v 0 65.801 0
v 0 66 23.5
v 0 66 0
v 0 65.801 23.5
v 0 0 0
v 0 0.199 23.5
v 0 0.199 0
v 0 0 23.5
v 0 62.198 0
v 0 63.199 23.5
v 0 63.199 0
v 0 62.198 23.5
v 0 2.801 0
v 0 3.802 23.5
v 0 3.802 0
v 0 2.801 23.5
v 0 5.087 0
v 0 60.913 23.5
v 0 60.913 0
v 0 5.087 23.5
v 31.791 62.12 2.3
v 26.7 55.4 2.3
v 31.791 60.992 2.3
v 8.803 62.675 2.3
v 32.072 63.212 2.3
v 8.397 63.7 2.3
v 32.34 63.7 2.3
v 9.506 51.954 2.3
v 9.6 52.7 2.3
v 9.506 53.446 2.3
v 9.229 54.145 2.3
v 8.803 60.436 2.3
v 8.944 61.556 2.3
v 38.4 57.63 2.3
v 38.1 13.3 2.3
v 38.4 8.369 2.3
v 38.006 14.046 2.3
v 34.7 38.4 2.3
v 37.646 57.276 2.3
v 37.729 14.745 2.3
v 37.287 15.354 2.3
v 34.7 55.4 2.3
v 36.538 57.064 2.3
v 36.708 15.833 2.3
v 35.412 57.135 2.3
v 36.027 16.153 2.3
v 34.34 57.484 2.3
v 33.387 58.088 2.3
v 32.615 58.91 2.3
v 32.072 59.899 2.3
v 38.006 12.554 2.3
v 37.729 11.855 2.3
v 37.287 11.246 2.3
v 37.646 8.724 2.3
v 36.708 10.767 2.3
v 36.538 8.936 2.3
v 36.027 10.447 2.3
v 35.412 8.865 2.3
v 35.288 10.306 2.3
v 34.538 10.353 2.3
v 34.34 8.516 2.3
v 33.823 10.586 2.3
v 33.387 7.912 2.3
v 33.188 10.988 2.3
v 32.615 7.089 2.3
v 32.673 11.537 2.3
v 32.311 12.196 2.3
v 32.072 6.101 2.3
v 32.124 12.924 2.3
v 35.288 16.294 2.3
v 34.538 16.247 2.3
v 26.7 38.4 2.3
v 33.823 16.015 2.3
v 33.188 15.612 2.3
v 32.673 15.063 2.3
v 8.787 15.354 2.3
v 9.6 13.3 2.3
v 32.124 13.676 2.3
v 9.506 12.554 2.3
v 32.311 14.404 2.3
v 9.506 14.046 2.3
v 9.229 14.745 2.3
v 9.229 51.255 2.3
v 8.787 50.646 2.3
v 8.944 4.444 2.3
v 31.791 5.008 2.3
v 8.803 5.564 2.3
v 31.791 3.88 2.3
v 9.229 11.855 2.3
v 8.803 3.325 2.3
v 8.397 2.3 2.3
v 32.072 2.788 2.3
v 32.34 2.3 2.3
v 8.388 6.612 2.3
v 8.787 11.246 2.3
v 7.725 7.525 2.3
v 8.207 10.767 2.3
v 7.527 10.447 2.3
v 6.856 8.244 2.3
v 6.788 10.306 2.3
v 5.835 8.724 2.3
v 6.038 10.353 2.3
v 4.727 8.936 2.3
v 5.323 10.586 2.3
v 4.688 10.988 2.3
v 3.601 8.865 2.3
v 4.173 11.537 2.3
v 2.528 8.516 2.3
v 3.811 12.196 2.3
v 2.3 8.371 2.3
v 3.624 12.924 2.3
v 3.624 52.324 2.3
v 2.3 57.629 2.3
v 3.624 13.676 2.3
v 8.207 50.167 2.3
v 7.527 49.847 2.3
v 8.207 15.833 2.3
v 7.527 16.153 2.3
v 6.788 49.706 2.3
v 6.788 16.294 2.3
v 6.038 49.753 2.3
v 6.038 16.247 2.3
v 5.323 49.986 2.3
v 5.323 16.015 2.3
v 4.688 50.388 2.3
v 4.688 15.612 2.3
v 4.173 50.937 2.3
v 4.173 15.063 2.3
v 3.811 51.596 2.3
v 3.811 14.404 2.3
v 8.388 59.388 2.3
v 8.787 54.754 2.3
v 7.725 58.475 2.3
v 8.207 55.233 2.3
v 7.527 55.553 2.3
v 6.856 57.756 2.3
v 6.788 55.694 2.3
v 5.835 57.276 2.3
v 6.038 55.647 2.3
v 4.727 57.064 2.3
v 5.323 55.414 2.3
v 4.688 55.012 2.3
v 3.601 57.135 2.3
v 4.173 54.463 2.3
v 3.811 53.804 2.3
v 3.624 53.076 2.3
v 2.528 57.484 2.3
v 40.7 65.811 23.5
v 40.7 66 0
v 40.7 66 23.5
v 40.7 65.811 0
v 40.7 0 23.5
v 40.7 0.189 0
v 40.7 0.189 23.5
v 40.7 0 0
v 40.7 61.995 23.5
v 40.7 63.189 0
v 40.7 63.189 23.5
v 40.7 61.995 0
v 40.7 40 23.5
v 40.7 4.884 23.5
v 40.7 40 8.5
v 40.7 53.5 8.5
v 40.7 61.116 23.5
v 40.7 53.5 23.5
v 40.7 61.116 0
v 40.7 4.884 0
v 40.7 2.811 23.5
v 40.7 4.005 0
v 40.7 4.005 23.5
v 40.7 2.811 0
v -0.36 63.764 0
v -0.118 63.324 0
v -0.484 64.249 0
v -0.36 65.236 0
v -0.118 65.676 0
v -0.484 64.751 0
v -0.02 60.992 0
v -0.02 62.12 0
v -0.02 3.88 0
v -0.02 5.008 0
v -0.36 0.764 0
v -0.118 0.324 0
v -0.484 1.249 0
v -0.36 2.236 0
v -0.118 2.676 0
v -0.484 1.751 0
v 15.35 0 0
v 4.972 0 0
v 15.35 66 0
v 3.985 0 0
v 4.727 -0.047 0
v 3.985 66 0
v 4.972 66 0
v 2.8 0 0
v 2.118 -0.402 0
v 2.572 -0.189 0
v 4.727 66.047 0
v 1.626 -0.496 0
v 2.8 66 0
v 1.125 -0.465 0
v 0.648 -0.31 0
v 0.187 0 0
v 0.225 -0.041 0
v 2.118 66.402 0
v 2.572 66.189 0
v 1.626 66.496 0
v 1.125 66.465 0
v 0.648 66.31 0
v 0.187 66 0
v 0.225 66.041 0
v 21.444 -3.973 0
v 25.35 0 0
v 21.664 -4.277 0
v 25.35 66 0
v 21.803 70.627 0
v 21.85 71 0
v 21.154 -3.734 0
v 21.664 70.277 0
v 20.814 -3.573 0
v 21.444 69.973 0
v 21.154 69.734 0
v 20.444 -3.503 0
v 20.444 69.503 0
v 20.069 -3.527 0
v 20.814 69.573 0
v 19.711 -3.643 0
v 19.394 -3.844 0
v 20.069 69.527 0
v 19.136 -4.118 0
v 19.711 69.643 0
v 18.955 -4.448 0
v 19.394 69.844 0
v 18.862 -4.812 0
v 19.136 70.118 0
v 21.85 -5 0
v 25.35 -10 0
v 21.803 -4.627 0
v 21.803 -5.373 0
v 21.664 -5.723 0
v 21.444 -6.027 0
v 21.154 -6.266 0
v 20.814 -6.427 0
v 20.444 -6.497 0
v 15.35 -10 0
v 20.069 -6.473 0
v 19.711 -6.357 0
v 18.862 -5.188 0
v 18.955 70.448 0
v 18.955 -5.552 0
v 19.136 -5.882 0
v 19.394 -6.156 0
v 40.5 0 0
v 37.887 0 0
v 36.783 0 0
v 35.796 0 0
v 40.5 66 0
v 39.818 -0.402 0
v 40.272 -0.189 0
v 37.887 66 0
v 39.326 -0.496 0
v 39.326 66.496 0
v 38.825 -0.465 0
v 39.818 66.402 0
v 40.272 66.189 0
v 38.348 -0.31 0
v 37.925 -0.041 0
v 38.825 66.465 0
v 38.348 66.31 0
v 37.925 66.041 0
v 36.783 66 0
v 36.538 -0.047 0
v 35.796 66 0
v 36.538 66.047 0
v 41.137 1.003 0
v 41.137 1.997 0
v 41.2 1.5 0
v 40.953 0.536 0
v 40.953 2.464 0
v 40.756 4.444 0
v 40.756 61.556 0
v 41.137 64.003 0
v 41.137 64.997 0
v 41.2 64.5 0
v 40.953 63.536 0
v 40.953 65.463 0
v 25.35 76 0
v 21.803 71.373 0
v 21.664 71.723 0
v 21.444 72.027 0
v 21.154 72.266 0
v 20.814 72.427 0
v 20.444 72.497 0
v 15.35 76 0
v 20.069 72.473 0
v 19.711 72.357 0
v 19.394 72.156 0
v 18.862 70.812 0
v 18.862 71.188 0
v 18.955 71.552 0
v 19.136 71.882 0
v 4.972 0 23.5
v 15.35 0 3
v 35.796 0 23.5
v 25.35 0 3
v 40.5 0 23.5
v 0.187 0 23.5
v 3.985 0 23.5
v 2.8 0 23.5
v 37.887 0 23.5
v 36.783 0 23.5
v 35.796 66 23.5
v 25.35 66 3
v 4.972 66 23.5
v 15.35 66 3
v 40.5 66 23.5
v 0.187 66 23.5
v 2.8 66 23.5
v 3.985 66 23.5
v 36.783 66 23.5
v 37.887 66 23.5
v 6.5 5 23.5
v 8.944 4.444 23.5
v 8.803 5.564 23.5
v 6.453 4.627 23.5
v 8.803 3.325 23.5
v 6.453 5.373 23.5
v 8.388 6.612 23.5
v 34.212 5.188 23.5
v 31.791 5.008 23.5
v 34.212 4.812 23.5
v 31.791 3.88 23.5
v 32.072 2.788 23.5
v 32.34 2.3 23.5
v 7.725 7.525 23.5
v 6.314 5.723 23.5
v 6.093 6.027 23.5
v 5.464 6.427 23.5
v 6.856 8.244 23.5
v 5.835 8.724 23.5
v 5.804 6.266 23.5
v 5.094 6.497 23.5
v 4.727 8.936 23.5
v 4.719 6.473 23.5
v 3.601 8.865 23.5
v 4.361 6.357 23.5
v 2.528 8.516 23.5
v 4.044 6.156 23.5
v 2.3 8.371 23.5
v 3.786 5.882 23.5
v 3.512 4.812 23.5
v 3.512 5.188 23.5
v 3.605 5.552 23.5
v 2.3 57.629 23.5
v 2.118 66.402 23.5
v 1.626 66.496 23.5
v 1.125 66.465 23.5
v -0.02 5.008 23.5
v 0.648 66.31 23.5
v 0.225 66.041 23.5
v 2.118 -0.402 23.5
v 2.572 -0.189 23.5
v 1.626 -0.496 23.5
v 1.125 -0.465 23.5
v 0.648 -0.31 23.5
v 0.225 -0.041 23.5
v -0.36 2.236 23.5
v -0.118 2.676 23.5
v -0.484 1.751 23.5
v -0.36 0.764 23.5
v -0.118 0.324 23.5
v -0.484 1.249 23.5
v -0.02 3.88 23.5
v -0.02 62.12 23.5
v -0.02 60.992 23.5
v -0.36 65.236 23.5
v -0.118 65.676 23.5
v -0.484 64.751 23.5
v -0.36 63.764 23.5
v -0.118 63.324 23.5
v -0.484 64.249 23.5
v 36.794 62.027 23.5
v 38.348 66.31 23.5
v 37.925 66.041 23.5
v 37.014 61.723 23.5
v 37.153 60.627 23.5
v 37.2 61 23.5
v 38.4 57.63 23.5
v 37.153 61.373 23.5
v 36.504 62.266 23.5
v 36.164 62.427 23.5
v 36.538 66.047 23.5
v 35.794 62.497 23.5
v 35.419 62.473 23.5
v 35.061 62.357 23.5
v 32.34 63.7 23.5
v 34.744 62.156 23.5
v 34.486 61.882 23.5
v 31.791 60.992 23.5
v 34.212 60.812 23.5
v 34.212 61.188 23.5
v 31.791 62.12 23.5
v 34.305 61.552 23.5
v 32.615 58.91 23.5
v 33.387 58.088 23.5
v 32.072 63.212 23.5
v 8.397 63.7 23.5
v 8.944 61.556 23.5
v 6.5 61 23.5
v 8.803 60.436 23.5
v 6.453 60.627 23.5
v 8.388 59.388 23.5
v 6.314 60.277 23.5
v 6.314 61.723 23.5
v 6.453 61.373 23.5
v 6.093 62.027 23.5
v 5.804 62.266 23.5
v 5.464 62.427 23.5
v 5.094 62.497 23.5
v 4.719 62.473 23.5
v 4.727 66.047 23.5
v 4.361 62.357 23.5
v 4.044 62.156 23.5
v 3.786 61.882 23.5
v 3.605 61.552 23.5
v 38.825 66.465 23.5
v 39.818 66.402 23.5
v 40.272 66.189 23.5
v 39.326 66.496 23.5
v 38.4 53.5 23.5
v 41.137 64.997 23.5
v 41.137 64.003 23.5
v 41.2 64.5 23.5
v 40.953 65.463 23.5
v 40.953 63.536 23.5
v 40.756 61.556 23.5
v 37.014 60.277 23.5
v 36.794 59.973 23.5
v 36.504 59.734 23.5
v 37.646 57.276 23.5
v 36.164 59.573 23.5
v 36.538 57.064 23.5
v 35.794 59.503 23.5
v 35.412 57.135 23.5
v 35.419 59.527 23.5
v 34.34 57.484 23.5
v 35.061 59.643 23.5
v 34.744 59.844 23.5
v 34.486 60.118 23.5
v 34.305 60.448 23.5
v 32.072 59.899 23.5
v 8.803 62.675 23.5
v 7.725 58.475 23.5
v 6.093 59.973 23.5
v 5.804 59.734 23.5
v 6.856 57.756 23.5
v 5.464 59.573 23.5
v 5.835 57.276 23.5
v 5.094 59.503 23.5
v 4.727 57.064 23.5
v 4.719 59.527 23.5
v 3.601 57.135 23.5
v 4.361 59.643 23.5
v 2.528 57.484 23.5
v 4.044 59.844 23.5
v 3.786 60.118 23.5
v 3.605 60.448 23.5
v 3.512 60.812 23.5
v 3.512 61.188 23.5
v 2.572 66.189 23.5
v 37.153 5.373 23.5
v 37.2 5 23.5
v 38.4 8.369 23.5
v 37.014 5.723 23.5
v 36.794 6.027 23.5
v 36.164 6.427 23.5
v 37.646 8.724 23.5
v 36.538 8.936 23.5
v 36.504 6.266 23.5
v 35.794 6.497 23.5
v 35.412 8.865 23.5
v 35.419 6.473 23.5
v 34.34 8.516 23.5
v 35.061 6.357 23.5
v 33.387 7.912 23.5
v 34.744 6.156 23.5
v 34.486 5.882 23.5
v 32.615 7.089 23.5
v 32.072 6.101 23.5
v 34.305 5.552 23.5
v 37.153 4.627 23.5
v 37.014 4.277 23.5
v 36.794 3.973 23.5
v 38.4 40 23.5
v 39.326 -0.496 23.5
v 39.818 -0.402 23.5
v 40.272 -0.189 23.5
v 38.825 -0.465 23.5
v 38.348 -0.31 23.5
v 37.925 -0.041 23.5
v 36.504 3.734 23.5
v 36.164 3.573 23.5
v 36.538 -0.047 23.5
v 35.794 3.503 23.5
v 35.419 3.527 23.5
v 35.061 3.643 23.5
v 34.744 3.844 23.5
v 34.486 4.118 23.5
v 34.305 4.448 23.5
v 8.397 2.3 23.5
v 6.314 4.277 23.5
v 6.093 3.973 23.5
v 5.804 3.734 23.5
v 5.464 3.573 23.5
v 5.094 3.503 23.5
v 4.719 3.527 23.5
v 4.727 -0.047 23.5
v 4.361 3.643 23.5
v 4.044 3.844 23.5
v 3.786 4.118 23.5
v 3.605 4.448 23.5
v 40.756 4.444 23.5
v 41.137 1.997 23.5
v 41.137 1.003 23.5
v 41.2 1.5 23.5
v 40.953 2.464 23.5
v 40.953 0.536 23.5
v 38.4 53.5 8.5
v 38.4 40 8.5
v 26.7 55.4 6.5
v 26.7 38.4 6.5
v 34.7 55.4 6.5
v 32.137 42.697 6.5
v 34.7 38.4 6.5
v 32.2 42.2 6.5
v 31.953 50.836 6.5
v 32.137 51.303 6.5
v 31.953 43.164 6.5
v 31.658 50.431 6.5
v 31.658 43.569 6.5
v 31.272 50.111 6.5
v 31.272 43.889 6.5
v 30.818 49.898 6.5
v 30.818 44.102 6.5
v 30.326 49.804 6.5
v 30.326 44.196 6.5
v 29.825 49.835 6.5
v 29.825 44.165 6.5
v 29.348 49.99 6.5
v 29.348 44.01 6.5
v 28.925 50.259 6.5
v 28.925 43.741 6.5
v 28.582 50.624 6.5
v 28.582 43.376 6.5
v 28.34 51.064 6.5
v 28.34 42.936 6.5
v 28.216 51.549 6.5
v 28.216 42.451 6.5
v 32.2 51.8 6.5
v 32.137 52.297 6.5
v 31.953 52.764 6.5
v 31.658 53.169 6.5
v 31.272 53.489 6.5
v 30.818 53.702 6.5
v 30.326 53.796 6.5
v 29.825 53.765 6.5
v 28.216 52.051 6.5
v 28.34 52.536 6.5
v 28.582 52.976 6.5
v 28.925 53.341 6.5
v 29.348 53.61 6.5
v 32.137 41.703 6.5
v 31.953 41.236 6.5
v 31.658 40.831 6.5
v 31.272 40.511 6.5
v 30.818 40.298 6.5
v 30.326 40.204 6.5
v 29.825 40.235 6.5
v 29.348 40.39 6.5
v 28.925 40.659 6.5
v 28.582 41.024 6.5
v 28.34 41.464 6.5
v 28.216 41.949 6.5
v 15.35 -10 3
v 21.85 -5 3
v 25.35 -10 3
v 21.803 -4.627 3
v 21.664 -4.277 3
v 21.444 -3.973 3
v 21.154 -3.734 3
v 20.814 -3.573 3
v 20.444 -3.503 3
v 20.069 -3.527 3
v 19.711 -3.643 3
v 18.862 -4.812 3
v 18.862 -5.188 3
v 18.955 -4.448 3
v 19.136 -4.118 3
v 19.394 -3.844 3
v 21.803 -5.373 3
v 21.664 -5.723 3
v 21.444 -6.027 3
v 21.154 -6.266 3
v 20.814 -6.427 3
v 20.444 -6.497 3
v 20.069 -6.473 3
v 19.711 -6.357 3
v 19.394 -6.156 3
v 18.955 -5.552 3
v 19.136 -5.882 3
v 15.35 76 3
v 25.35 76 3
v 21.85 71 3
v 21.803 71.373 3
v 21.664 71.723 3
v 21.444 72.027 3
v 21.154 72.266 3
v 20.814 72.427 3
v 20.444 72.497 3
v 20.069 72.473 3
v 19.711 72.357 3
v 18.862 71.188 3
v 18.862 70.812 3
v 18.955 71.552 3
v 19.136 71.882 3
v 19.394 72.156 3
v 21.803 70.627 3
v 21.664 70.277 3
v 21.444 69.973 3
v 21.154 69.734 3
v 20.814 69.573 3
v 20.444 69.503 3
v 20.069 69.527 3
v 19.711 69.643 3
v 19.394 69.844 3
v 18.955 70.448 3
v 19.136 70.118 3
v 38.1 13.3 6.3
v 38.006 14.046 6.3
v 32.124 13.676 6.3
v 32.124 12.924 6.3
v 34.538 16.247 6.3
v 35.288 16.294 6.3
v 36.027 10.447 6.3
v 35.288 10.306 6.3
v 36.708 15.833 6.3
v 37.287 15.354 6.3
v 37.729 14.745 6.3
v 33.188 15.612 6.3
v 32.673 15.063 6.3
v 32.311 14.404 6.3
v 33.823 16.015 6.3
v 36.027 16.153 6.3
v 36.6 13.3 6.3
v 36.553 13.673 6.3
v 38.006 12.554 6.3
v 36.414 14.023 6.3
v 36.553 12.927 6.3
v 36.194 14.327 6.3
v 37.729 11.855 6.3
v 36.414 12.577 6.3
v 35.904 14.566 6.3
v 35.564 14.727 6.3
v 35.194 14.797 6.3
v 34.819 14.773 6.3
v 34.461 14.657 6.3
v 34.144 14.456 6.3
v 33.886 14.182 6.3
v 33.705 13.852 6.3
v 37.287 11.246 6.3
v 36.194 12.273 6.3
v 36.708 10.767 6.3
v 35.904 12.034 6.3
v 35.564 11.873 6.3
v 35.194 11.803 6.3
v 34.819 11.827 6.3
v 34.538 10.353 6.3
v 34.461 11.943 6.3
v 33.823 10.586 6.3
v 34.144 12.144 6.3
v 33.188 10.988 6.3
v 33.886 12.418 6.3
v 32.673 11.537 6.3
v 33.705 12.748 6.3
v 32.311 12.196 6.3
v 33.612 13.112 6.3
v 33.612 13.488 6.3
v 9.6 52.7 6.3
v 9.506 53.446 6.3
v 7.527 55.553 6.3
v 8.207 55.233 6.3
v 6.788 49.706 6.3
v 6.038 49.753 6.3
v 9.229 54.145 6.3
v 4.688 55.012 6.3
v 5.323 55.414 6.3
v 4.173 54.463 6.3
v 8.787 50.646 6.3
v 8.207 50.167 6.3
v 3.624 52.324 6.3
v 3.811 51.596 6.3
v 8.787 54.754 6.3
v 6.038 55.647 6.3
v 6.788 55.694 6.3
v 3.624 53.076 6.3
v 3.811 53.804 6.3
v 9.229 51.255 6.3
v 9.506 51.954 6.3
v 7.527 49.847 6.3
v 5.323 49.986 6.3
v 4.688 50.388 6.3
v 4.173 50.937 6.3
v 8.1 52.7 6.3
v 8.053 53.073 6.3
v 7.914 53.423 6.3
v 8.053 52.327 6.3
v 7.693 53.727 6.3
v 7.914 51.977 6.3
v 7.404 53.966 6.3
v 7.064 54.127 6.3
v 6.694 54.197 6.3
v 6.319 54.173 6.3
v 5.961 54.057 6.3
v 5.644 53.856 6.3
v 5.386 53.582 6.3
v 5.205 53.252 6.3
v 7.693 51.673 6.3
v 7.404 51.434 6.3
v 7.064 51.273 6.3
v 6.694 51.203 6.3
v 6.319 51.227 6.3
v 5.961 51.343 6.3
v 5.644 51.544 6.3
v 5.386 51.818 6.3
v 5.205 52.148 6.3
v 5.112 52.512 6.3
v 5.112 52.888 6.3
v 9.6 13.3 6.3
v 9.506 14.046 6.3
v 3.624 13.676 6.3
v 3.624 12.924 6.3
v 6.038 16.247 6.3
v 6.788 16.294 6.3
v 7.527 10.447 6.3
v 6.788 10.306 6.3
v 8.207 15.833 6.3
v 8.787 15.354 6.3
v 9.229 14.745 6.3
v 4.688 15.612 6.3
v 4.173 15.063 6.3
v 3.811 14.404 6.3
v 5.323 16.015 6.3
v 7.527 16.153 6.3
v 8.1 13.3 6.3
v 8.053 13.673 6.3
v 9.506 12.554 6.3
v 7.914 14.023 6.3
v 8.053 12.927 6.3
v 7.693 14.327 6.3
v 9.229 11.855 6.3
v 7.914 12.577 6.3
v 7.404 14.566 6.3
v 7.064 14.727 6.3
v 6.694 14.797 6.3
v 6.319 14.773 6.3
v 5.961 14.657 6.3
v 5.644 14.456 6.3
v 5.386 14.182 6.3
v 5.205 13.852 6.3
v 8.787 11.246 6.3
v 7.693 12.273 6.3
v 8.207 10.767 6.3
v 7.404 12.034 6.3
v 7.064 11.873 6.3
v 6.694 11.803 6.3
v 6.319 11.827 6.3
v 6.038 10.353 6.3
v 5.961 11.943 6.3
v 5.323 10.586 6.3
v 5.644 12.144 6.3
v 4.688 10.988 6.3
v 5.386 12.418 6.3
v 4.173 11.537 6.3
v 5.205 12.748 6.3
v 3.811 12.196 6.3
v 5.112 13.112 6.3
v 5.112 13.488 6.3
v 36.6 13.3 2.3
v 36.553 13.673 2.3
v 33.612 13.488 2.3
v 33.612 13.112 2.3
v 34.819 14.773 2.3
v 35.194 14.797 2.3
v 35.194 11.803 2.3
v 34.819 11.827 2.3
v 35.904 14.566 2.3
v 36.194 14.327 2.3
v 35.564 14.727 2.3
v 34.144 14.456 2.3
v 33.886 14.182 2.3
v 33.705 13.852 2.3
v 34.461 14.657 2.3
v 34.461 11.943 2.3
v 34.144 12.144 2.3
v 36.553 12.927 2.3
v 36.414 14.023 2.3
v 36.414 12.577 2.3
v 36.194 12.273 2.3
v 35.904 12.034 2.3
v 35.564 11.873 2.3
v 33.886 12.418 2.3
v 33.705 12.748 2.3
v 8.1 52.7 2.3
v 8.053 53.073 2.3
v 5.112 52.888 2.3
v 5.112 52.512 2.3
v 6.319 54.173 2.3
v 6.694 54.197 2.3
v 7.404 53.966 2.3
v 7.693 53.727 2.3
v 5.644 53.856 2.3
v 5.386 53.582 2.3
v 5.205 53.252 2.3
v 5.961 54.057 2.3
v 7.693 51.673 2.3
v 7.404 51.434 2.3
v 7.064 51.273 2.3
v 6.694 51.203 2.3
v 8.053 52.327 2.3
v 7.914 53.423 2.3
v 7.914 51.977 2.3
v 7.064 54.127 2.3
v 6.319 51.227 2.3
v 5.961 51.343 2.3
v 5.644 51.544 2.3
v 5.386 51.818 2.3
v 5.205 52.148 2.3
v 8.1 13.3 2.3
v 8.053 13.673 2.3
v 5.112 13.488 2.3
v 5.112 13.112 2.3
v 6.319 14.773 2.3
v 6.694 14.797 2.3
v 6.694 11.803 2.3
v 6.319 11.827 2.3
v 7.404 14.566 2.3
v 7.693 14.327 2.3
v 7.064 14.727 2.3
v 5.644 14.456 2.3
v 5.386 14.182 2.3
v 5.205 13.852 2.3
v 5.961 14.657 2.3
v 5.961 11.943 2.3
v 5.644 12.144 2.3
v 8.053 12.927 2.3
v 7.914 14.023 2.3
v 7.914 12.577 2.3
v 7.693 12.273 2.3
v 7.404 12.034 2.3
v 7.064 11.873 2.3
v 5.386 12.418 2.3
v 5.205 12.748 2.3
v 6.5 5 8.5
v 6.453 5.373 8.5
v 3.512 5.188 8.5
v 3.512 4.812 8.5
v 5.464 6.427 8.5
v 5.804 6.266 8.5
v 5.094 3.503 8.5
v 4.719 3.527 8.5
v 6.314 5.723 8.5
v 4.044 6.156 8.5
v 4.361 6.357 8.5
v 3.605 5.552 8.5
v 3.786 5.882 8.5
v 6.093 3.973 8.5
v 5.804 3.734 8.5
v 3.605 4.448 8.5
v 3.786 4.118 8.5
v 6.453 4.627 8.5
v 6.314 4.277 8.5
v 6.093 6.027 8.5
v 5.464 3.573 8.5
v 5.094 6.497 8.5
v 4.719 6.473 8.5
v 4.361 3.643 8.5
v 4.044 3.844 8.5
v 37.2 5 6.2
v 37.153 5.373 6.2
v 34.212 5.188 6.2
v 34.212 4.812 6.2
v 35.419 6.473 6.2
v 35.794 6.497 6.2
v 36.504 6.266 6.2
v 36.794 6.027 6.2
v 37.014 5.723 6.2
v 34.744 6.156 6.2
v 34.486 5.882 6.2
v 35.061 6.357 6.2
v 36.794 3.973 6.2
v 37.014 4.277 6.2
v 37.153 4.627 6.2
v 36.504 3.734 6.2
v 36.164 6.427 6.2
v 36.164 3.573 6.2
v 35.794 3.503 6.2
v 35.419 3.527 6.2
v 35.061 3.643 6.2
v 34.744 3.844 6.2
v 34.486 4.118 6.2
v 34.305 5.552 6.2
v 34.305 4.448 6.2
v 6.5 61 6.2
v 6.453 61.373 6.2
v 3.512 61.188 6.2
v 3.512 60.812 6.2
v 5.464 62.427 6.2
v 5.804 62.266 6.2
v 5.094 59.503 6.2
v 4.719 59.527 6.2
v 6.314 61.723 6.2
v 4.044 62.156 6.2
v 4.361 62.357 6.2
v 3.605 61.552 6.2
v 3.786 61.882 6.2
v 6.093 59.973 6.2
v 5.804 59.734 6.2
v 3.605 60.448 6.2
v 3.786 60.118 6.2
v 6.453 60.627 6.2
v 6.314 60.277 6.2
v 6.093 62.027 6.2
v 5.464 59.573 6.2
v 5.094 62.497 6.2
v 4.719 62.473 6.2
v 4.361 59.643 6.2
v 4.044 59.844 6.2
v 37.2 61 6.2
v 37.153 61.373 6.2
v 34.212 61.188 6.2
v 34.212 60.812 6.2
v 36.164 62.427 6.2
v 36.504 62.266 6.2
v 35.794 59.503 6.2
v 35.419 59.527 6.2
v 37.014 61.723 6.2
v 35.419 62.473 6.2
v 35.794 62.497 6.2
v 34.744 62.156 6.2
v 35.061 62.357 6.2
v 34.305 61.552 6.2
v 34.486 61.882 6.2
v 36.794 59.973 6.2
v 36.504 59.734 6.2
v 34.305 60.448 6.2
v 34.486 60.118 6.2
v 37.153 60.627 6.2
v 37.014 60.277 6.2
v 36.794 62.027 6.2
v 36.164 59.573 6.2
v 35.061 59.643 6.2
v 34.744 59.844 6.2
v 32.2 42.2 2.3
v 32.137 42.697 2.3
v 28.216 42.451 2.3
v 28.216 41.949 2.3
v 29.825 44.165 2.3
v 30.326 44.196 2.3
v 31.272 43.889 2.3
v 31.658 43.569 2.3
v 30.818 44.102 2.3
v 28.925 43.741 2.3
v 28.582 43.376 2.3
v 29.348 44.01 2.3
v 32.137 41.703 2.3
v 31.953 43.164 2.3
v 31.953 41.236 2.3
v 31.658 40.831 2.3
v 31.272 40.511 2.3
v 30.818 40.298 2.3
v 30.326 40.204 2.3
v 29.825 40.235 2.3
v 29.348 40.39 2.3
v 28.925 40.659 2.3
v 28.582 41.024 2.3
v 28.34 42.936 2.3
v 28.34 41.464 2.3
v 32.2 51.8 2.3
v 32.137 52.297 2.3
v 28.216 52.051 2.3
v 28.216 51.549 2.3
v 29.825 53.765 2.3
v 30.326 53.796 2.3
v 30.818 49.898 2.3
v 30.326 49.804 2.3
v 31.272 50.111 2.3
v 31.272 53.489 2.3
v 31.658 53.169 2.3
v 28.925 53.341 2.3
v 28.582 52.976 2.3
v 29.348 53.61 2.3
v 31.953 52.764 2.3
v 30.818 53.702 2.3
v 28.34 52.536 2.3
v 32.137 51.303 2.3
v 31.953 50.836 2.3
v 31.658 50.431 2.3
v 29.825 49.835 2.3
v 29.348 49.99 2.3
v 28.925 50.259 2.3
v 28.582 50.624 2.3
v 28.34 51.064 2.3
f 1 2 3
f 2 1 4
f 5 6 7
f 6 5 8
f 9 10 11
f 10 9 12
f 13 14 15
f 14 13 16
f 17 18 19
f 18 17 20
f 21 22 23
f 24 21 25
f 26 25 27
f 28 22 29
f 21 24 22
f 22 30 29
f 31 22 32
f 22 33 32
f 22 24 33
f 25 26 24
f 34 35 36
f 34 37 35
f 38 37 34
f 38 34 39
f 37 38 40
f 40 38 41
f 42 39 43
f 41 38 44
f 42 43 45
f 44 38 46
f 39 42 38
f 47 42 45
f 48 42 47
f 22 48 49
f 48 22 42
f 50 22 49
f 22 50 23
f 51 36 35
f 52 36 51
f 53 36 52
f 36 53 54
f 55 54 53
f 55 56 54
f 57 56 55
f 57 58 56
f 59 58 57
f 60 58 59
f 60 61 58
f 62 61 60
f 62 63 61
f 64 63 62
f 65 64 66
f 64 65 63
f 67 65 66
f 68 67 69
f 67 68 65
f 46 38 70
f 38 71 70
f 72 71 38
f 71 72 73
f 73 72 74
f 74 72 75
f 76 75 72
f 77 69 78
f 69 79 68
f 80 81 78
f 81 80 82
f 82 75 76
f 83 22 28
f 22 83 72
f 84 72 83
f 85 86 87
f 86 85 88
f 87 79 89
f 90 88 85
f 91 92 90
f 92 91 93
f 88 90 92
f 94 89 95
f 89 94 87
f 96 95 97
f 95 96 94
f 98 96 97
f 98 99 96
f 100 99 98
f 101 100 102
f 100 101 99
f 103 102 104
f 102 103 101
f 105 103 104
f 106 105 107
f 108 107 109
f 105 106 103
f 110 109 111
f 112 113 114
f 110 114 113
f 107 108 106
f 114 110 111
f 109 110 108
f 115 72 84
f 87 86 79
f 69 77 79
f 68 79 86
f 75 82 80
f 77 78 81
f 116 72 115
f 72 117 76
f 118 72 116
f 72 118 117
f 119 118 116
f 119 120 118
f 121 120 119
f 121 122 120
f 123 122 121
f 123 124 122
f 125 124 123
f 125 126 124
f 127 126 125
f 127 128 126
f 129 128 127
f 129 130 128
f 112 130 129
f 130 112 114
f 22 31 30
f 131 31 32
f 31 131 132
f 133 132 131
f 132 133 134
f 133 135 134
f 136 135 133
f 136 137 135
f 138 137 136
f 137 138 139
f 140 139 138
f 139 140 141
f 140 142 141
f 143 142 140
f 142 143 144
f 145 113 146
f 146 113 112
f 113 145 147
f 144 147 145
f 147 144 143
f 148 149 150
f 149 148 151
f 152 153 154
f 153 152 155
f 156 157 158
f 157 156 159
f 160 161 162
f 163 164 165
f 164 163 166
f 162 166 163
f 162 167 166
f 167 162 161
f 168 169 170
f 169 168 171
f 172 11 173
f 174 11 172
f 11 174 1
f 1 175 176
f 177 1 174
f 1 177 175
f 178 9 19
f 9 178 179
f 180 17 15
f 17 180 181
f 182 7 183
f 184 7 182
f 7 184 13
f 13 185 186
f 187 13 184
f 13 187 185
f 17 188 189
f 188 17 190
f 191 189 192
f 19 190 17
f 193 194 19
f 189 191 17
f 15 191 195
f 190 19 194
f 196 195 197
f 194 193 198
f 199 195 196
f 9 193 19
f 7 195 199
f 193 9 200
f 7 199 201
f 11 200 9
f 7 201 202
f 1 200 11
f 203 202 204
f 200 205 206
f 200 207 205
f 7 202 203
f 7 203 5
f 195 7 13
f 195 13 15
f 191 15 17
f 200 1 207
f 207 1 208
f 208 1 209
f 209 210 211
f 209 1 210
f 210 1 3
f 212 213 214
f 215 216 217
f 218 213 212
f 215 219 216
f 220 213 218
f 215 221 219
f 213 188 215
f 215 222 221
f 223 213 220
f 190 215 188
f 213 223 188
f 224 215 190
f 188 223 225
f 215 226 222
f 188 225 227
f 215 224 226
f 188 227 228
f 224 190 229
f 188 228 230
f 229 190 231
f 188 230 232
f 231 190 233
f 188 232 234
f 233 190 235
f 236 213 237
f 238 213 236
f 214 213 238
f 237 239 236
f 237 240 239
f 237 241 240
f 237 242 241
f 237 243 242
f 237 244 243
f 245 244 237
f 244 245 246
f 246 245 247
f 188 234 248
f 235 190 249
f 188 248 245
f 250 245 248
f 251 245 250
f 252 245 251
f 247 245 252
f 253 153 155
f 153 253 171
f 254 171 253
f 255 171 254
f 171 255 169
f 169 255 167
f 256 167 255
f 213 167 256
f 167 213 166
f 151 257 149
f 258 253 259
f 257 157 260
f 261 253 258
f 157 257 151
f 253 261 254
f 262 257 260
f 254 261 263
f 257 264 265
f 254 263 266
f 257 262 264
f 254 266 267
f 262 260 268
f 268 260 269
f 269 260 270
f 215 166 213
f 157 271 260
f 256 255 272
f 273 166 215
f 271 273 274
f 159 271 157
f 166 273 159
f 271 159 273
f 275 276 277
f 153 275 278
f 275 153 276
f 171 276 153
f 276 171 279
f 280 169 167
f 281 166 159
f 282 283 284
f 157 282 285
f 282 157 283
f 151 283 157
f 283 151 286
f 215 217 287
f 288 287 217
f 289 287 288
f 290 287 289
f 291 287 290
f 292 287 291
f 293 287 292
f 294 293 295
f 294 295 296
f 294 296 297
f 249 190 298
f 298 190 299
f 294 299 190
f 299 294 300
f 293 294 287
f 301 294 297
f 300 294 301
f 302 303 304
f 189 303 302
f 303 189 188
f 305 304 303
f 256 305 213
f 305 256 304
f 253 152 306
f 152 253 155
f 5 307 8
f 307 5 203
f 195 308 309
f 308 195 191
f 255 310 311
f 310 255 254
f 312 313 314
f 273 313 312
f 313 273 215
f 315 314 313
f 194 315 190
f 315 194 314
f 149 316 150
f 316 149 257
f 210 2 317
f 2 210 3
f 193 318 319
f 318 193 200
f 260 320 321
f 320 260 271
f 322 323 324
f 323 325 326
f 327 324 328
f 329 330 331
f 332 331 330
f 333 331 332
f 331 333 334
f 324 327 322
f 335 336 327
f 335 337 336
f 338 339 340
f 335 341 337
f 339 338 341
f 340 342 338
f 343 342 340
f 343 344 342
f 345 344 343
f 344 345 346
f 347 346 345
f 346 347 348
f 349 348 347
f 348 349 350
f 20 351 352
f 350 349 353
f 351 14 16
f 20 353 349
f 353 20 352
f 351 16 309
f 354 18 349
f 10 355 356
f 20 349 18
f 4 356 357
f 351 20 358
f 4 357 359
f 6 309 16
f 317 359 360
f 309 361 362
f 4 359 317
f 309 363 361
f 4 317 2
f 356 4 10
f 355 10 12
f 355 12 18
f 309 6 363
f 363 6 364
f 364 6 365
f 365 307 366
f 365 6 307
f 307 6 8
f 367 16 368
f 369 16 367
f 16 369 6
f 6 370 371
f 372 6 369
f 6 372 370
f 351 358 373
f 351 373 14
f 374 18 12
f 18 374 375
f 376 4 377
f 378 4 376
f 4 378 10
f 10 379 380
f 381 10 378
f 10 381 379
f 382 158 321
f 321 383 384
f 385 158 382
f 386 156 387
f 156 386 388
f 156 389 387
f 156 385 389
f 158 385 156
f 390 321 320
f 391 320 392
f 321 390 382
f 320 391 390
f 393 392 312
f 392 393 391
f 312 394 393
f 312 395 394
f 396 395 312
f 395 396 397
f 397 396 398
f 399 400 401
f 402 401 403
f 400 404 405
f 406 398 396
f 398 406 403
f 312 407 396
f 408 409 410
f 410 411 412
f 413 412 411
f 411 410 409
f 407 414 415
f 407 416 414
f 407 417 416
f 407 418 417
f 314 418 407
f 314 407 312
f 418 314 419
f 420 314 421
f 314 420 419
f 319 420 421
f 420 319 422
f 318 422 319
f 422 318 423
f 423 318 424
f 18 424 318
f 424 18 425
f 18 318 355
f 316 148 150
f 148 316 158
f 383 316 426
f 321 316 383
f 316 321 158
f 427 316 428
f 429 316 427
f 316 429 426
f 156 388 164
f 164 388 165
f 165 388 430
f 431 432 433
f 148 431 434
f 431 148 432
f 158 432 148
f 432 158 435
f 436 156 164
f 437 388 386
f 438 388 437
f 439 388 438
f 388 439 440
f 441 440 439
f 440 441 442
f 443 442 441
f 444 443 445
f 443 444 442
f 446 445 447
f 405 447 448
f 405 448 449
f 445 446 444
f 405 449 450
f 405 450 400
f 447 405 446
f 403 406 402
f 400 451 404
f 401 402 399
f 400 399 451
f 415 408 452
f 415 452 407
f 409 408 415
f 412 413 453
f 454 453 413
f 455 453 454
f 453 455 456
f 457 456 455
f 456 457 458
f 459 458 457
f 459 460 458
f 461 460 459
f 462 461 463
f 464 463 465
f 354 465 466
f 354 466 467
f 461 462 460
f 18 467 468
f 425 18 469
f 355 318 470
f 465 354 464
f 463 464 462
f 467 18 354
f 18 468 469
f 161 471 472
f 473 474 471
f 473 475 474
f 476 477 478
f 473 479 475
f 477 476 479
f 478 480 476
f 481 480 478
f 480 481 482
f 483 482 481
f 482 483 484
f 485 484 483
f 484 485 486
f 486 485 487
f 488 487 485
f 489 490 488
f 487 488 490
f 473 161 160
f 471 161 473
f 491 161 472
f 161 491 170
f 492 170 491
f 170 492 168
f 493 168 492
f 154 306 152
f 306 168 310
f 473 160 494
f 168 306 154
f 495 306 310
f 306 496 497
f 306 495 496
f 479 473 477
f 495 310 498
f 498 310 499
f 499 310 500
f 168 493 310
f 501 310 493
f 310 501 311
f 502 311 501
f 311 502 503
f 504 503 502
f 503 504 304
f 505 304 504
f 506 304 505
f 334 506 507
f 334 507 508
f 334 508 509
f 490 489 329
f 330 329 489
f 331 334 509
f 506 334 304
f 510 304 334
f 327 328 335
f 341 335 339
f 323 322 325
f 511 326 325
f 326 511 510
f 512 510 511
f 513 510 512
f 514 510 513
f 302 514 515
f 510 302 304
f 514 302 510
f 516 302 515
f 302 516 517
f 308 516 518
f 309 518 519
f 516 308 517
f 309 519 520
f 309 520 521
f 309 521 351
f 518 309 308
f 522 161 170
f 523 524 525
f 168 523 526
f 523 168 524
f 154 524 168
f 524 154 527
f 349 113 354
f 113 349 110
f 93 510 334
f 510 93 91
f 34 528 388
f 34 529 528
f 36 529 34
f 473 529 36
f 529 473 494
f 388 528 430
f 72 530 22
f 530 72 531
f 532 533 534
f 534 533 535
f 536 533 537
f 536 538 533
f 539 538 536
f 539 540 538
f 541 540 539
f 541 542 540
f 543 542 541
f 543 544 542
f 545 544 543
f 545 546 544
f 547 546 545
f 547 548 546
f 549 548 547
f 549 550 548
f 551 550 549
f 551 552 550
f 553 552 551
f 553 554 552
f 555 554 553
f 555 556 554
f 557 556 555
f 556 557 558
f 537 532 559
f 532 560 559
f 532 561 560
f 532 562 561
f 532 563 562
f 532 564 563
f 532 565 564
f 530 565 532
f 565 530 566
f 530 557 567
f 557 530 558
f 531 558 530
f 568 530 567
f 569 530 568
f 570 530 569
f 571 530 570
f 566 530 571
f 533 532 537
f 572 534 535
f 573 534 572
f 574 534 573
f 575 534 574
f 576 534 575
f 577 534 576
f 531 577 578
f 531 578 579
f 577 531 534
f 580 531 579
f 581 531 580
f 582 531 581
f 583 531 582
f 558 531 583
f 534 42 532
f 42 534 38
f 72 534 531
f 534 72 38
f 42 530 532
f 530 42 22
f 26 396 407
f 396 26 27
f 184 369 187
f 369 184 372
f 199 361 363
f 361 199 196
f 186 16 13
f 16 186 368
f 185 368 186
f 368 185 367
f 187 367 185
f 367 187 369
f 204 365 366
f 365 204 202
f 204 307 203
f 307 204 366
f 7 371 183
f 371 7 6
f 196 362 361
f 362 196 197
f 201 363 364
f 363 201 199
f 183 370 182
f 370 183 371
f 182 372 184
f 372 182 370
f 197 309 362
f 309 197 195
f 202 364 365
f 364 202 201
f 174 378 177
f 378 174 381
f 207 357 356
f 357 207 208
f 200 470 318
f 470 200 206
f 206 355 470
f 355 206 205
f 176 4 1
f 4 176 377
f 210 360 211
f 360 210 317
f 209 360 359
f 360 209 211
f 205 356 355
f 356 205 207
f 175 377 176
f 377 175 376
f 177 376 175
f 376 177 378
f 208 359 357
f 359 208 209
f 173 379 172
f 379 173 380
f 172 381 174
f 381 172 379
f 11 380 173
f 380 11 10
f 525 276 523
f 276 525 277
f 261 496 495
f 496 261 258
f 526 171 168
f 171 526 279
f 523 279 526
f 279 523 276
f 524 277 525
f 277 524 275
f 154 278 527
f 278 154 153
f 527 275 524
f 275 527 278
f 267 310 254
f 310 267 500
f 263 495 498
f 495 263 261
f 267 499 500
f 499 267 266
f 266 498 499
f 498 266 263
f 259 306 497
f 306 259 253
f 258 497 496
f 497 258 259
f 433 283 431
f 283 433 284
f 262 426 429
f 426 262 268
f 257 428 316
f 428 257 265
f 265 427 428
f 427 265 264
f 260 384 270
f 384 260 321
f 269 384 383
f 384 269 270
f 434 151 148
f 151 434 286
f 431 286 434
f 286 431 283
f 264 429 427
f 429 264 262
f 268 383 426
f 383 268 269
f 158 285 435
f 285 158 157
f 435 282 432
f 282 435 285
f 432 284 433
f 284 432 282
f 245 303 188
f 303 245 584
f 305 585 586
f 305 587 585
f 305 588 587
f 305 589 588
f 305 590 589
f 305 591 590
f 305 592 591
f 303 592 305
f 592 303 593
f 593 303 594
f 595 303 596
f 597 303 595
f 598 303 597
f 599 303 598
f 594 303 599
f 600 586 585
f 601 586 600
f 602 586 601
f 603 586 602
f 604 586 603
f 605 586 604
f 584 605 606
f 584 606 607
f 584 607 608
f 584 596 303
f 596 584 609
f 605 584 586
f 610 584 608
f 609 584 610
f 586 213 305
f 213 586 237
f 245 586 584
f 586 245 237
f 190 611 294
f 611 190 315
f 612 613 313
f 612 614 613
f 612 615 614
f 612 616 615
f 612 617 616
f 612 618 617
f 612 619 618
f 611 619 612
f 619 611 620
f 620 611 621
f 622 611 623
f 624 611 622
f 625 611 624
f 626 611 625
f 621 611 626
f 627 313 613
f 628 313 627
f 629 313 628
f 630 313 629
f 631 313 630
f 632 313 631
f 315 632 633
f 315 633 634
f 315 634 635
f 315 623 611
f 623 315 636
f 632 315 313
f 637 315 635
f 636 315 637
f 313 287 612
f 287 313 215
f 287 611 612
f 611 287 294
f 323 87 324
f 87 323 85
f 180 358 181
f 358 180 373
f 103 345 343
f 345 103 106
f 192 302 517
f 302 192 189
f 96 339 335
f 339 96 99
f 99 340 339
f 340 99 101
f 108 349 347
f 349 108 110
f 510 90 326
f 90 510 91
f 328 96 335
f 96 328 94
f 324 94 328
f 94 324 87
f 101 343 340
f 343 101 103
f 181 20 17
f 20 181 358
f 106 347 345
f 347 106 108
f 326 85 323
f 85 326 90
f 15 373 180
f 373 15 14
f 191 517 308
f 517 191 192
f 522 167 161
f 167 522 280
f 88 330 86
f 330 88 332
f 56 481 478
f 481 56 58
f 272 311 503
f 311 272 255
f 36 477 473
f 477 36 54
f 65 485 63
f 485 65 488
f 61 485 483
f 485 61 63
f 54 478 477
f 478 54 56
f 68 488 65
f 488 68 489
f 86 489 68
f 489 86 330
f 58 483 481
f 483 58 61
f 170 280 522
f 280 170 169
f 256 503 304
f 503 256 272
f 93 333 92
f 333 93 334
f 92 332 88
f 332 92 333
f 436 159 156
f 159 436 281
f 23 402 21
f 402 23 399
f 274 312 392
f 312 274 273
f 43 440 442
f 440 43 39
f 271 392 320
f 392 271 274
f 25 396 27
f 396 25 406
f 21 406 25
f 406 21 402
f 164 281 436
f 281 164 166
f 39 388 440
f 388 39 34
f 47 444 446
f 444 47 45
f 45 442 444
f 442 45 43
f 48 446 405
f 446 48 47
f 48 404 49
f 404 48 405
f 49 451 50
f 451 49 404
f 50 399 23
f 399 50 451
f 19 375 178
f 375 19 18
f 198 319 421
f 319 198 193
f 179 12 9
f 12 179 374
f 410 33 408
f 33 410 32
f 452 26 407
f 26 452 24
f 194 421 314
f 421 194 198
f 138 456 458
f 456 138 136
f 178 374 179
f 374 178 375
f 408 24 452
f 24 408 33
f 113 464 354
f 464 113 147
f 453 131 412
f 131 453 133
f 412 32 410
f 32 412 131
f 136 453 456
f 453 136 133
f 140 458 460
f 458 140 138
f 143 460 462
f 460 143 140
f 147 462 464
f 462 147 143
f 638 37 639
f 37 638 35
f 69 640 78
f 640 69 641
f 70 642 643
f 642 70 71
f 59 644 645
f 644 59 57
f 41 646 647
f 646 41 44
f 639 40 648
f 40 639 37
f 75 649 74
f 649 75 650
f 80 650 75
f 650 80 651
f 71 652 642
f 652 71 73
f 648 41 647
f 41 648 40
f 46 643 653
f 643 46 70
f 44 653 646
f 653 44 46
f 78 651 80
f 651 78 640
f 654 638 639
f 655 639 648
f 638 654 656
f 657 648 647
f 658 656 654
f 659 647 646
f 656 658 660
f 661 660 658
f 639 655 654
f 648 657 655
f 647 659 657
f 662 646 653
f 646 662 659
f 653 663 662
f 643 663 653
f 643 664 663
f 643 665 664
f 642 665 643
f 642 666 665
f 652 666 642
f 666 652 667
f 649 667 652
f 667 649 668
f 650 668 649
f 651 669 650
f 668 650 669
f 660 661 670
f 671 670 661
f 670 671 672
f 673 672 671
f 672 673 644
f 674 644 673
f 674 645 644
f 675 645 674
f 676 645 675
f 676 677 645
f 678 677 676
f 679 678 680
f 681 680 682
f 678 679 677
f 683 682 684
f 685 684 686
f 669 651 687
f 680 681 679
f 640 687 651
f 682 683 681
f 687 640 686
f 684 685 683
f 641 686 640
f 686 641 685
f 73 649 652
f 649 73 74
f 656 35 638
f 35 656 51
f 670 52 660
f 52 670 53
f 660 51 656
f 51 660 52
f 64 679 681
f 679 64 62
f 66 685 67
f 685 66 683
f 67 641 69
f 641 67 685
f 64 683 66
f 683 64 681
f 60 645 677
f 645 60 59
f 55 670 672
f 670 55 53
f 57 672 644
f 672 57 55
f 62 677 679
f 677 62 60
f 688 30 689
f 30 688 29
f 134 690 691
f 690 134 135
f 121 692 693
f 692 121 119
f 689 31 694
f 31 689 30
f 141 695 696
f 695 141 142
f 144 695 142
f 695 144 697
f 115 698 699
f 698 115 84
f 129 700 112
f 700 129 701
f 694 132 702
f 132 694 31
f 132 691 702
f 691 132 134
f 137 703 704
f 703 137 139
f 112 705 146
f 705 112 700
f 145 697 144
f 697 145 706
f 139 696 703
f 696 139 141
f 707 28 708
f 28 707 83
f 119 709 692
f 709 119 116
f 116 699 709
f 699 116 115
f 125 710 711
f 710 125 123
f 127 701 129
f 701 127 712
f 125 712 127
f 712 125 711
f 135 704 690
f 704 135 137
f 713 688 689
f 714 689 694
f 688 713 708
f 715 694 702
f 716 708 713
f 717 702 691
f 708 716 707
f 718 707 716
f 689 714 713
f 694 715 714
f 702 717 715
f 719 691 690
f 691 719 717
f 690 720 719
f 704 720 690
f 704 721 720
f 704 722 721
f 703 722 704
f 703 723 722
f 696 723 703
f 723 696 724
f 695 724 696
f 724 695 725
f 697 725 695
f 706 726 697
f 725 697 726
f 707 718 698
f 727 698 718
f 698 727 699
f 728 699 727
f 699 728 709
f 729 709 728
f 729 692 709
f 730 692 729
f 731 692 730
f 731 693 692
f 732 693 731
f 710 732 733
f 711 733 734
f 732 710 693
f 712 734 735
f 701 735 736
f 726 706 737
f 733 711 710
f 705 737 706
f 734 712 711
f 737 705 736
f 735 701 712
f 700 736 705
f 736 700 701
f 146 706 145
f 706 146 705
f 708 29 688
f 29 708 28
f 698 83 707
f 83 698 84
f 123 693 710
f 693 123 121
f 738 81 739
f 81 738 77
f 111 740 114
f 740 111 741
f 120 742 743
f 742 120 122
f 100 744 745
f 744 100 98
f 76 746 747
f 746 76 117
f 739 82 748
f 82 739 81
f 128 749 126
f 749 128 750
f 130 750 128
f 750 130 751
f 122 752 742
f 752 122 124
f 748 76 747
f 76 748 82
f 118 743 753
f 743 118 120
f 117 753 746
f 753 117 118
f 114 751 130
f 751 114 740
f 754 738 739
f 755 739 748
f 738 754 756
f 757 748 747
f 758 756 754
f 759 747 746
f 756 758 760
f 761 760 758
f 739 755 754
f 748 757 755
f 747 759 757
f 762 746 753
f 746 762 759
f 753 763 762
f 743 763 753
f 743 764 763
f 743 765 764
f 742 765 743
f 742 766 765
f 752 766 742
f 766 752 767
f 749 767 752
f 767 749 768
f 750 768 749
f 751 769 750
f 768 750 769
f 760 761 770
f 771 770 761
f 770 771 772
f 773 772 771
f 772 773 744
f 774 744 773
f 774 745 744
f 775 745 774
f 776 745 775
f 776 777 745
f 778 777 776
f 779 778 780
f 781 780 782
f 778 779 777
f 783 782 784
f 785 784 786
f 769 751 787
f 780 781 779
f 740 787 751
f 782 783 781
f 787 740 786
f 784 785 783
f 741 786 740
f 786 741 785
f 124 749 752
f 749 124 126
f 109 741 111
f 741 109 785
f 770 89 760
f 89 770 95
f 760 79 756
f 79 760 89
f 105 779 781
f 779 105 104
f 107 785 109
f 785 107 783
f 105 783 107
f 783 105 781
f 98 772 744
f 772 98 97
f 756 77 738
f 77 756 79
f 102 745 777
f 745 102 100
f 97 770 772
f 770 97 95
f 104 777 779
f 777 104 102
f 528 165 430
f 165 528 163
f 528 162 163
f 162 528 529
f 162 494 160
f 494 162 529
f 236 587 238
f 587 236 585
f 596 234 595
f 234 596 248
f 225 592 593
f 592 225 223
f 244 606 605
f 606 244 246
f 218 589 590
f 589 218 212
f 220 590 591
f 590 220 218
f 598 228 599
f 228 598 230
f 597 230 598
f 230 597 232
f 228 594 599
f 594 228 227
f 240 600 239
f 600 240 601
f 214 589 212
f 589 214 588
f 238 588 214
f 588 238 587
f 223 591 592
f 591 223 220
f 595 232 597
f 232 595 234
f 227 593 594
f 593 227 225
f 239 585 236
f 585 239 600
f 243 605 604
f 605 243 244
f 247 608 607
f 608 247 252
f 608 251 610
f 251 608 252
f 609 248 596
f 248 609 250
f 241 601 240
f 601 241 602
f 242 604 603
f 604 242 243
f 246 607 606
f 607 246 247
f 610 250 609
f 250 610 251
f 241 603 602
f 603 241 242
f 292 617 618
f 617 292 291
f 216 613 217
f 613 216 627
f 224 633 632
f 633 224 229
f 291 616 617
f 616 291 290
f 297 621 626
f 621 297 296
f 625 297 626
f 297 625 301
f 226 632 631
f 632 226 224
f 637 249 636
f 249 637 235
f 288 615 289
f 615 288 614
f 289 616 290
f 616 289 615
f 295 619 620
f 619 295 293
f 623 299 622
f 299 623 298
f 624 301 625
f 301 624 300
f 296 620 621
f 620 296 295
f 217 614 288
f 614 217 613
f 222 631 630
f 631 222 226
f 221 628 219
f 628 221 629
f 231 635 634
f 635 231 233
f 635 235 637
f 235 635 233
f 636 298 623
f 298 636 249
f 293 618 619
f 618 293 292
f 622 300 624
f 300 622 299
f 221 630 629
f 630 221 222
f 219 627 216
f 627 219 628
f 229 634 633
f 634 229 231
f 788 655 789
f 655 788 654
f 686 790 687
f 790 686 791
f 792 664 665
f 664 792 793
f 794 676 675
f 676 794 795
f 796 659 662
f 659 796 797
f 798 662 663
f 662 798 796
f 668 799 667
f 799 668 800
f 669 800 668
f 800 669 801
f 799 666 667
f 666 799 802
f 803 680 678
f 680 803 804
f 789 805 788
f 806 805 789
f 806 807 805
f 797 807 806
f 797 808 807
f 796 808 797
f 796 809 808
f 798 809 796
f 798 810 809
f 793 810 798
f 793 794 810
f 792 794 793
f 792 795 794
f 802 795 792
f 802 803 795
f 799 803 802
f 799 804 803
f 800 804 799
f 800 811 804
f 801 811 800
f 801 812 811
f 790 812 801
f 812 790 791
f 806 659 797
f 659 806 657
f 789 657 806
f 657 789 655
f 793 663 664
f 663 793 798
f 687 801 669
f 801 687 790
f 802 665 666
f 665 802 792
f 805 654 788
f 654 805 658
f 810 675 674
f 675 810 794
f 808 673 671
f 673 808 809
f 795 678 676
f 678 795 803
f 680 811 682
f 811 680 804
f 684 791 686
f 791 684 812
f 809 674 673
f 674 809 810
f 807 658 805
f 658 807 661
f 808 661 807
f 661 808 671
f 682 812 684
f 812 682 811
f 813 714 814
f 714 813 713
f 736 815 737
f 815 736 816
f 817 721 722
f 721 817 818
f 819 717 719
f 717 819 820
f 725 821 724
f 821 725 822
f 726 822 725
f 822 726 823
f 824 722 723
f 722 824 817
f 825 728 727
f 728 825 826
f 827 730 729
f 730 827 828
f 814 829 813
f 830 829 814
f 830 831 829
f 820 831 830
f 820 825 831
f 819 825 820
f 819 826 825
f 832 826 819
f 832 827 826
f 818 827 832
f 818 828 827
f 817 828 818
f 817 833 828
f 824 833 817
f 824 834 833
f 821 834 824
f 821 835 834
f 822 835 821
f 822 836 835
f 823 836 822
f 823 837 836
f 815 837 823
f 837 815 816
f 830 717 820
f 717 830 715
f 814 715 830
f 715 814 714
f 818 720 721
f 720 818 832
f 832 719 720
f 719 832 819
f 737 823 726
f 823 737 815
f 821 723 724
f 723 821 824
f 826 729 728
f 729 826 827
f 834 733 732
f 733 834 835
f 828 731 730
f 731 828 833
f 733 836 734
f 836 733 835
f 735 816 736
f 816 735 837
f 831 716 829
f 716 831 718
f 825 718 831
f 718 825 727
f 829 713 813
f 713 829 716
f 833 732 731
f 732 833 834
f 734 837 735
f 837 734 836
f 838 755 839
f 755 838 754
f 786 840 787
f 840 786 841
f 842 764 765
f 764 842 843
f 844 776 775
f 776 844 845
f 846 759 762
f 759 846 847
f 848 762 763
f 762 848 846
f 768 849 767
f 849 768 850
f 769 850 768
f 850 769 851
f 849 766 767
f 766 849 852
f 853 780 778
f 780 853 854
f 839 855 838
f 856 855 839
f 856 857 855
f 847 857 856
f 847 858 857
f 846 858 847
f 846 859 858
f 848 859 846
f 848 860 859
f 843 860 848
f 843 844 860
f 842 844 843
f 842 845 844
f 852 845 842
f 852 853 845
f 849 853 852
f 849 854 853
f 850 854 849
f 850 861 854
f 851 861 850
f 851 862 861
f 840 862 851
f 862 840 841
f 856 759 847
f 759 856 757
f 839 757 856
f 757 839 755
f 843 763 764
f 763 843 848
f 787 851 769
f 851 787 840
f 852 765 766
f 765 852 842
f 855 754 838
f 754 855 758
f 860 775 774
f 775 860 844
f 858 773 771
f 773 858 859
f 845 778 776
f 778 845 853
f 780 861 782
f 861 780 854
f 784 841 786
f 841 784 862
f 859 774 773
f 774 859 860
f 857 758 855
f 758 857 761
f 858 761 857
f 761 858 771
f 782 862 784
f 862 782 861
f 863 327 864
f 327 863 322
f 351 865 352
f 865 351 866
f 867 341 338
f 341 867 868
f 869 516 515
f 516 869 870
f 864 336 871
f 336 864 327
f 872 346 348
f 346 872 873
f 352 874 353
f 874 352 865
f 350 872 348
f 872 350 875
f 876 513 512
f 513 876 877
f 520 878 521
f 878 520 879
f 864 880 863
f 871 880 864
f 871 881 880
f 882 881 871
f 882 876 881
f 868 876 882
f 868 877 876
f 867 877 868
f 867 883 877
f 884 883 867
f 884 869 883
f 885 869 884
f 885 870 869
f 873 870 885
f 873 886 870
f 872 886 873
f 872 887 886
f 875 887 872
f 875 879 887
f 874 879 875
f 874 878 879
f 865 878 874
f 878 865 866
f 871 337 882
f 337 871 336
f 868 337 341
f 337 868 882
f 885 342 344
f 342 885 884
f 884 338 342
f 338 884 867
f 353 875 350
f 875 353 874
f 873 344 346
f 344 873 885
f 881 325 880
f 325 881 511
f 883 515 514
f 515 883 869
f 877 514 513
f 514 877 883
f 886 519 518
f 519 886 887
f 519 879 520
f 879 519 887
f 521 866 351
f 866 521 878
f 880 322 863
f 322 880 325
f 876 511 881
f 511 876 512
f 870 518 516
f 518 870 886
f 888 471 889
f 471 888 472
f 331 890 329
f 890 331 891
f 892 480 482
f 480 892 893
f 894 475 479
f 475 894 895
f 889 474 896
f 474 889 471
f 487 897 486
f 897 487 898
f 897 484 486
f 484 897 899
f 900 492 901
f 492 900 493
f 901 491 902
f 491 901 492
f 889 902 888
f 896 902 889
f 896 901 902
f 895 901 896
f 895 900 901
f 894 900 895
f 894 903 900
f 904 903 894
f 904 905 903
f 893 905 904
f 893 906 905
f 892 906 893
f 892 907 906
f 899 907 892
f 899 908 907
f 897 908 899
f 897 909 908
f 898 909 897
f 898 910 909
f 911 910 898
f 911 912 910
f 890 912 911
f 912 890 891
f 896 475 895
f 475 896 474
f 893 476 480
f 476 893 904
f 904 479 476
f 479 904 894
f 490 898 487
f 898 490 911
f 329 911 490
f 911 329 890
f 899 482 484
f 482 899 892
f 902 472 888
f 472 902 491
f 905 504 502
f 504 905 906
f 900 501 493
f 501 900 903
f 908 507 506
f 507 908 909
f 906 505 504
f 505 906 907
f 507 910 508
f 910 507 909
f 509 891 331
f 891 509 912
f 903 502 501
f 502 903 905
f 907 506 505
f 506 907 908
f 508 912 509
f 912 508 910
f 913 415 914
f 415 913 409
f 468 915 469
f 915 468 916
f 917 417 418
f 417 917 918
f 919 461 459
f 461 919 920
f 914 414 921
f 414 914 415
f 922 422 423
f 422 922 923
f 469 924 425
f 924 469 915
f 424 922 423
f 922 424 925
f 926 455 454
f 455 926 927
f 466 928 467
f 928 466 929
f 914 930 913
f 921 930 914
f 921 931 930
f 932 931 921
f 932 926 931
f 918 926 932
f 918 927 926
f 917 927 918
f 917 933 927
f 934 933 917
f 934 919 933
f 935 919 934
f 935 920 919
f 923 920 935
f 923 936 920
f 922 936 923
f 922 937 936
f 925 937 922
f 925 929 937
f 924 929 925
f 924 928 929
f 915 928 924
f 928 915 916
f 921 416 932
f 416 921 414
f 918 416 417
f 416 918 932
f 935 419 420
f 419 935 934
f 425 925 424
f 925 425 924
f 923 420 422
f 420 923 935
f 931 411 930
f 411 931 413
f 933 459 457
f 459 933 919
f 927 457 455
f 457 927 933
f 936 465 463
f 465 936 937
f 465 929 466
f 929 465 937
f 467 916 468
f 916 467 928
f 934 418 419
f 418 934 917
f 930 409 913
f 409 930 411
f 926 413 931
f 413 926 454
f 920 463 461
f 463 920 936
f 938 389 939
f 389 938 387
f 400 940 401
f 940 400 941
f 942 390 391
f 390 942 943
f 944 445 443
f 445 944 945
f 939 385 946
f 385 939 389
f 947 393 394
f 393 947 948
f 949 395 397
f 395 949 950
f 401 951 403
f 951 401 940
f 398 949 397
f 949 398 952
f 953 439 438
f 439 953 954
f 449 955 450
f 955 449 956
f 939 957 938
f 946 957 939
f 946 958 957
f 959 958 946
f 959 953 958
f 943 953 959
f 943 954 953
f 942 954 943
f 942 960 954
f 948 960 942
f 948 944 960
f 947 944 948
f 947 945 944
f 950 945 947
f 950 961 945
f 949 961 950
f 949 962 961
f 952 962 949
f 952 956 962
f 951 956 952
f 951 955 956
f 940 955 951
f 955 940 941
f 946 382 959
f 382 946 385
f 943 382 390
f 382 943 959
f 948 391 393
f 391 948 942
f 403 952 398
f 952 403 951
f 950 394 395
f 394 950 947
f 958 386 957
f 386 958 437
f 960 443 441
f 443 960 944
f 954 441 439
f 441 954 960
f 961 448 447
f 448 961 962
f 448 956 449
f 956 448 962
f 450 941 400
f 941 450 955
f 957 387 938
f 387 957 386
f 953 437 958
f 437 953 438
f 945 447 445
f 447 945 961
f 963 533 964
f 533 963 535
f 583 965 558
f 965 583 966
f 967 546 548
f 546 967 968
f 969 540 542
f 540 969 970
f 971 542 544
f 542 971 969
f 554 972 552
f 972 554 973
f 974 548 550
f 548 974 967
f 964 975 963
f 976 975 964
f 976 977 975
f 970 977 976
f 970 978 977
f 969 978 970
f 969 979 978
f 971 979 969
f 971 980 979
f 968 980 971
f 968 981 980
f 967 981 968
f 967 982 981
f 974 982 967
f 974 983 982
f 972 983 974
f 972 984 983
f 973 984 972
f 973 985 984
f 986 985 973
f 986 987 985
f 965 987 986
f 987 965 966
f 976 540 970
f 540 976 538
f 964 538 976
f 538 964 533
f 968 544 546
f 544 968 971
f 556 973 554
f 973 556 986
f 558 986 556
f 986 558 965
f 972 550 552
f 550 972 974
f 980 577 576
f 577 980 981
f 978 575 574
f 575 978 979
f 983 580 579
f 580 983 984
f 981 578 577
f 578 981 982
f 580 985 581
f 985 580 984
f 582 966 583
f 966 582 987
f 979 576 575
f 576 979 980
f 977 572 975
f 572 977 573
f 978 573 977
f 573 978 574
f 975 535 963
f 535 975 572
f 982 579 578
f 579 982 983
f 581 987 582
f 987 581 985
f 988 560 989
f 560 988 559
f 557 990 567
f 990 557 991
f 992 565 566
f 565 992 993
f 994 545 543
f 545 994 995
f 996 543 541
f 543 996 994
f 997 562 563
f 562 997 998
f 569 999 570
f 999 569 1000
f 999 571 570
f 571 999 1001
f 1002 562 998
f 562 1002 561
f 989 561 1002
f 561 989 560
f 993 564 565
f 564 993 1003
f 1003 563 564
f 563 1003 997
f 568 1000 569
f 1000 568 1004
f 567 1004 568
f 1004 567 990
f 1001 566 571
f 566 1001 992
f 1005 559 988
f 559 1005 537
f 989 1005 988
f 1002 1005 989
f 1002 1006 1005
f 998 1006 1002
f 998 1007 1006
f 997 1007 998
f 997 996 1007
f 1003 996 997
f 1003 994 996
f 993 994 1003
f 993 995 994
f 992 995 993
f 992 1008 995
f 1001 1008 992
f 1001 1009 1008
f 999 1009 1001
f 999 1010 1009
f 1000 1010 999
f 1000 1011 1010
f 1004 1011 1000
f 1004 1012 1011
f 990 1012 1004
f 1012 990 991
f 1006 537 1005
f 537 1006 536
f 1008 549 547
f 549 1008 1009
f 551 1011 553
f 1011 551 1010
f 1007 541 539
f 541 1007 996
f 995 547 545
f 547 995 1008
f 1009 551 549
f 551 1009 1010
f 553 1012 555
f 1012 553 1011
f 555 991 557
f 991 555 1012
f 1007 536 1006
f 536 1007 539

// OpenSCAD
xmax=40.7;
ymax=66;
zmax=23.5;
hoogte_rj12=15;
breedte_rj12=13.3;
//bodem_gat_x=38; 
//afstand tussen gaten voor de pcb bevestiging
bodem_gat_y=39.4;
bodem_gat_x=28.5;
diepte_gat=15; //schroefgat in hoekpunten
gat_top=5;  // afstand vanaf hoekpunt voor bovenplaat
// plaatsing halverwege tussen zijplaten
// het printed circuit moet precies tegen de wand komen
// aan de kant waar de RJ12 connector zit
// gat_bodem is de hartafstand van het gat in de printplaat
// tot de buitenkant (die op positie xmax zit
gat_bodem_x=5.6; 
// hart afstand van de gaten in het printed circuit
// in de x richting (kleinste afstand)
hart_afstand_x=28.5;
// hart afstand y richting van het pcb
hart_afstand_y=39.0;
gat_bodem_y=(ymax-bodem_gat_y)/2;
// dikte hoeksupport
hoek_support=8;
dikte=2.3;
dikte_pcb=1.7;
pcb_support=zmax-dikte_pcb-hoogte_rj12-0.5;
verlaging_hoek_support=dikte;
$fn=25;
//minkowski()

difference()
{union()
    // onderplaat
{cube([xmax,ymax,dikte]);
    // plaat voorkant
cube([dikte,ymax,zmax]);
   
       // plaat zijkant links
cube([xmax,dikte,zmax]);
    // plaat rechterzijkant
translate([xmax-dikte,0,0])
cube([dikte,ymax,zmax]);
     // ondersteuning rj12 female connector
    translate([xmax-14,ymax-gat_bodem_y-breedte_rj12-1,0])
    cube([8,17,zmax-hoogte_rj12-dikte_pcb-0.3]);
    // plaat achterkant
translate([0,ymax-dikte,0])
cube([xmax,dikte,zmax]);
    //hoekrondjes
translate([1.5,1.5,0])
cylinder(r=2,h=zmax);
translate([1.5,ymax-1.5,0])
cylinder(r=2,h=zmax);
translate([xmax-1.5,1.5,0])
cylinder(r=2,h=zmax);
translate([xmax-1.5,ymax-1.5,0])
cylinder(r=2,h=zmax);
    
    // stuk voor muurbevestiging
    translate([xmax/2-5,-10,0])
    cube([10,10,3]);
    translate([xmax/2-5,ymax,0])
    cube([10,10,3]);
 
// 4 cylinders voor bevestiging bovenplaat
translate([hoek_support/1.8,hoek_support/1.8,0]) 
cylinder(r=4.5,h=zmax);
translate([xmax-hoek_support/1.8,hoek_support/1.8,0])
cylinder(r=4.5,h=zmax);
translate([xmax-hoek_support/1.8,ymax-hoek_support/1.8,0])
cylinder(r=4.5,h=zmax);
translate([hoek_support/1.8,ymax-hoek_support/1.8,0])
cylinder(r=4.5,h=zmax);
// de drie ronde supports voor het pcb
translate([xmax-gat_bodem_x,gat_bodem_y,0]) 
cylinder(d=6,h=pcb_support);
translate([xmax-gat_bodem_x-hart_afstand_x,ymax-gat_bodem_y,0]) 
cylinder(d=6,h=pcb_support);
translate([xmax-gat_bodem_x-hart_afstand_x,gat_bodem_y,0]) 
cylinder(d=6,h=pcb_support);}
// dit zijn de stukken die eruit gaan
//hieronder het stuk uit de rechterzijwand
translate([xmax-dikte-1,ymax-gat_bodem_y-breedte_rj12+0.6,zmax-hoogte_rj12])
cube([4,breedte_rj12+0.2,hoogte_rj12]);
// de gaten in de muurbevestiging (zijpoootjes)
translate([xmax/2,-5,-1])
    cylinder(d=3,h=5);
    translate([xmax/2,ymax+5,-1])
    cylinder(d=3,h=5);
//gat in printed circuit board bevestiging
translate([xmax-gat_bodem_x,gat_bodem_y,dikte]) 
cylinder(d=3,h=7);
translate([xmax-gat_bodem_x-hart_afstand_x,ymax-gat_bodem_y,dikte]) 
cylinder(d=3,h=7);
translate([xmax-gat_bodem_x-hart_afstand_x,gat_bodem_y,dikte]) 
cylinder(d=3,h=7);
// gaten voor de bevestiging van de bovenplaat
translate([gat_top,gat_top,zmax-diepte_gat])
cylinder(d=3,h=diepte_gat+dikte+1);
translate([xmax-gat_top,gat_top,zmax-dikte-diepte_gat])
cylinder(d=3,h=diepte_gat+dikte+1);
translate([gat_top,ymax-gat_top,zmax-dikte-diepte_gat])
cylinder(d=3,h=diepte_gat+dikte+1);
translate([xmax-gat_top,ymax-gat_top,zmax-dikte-diepte_gat])
cylinder(d=3,h=diepte_gat+dikte+1);
// gaten voor uitstekende bevestigingsplug rj12 connector
translate([xmax-10.5,ymax-gat_bodem_y-10.5,dikte])
cylinder(d=4,h=10);
translate([xmax-10.5,ymax-gat_bodem_y-0.9,dikte])

cylinder(d=4,h=10);}
